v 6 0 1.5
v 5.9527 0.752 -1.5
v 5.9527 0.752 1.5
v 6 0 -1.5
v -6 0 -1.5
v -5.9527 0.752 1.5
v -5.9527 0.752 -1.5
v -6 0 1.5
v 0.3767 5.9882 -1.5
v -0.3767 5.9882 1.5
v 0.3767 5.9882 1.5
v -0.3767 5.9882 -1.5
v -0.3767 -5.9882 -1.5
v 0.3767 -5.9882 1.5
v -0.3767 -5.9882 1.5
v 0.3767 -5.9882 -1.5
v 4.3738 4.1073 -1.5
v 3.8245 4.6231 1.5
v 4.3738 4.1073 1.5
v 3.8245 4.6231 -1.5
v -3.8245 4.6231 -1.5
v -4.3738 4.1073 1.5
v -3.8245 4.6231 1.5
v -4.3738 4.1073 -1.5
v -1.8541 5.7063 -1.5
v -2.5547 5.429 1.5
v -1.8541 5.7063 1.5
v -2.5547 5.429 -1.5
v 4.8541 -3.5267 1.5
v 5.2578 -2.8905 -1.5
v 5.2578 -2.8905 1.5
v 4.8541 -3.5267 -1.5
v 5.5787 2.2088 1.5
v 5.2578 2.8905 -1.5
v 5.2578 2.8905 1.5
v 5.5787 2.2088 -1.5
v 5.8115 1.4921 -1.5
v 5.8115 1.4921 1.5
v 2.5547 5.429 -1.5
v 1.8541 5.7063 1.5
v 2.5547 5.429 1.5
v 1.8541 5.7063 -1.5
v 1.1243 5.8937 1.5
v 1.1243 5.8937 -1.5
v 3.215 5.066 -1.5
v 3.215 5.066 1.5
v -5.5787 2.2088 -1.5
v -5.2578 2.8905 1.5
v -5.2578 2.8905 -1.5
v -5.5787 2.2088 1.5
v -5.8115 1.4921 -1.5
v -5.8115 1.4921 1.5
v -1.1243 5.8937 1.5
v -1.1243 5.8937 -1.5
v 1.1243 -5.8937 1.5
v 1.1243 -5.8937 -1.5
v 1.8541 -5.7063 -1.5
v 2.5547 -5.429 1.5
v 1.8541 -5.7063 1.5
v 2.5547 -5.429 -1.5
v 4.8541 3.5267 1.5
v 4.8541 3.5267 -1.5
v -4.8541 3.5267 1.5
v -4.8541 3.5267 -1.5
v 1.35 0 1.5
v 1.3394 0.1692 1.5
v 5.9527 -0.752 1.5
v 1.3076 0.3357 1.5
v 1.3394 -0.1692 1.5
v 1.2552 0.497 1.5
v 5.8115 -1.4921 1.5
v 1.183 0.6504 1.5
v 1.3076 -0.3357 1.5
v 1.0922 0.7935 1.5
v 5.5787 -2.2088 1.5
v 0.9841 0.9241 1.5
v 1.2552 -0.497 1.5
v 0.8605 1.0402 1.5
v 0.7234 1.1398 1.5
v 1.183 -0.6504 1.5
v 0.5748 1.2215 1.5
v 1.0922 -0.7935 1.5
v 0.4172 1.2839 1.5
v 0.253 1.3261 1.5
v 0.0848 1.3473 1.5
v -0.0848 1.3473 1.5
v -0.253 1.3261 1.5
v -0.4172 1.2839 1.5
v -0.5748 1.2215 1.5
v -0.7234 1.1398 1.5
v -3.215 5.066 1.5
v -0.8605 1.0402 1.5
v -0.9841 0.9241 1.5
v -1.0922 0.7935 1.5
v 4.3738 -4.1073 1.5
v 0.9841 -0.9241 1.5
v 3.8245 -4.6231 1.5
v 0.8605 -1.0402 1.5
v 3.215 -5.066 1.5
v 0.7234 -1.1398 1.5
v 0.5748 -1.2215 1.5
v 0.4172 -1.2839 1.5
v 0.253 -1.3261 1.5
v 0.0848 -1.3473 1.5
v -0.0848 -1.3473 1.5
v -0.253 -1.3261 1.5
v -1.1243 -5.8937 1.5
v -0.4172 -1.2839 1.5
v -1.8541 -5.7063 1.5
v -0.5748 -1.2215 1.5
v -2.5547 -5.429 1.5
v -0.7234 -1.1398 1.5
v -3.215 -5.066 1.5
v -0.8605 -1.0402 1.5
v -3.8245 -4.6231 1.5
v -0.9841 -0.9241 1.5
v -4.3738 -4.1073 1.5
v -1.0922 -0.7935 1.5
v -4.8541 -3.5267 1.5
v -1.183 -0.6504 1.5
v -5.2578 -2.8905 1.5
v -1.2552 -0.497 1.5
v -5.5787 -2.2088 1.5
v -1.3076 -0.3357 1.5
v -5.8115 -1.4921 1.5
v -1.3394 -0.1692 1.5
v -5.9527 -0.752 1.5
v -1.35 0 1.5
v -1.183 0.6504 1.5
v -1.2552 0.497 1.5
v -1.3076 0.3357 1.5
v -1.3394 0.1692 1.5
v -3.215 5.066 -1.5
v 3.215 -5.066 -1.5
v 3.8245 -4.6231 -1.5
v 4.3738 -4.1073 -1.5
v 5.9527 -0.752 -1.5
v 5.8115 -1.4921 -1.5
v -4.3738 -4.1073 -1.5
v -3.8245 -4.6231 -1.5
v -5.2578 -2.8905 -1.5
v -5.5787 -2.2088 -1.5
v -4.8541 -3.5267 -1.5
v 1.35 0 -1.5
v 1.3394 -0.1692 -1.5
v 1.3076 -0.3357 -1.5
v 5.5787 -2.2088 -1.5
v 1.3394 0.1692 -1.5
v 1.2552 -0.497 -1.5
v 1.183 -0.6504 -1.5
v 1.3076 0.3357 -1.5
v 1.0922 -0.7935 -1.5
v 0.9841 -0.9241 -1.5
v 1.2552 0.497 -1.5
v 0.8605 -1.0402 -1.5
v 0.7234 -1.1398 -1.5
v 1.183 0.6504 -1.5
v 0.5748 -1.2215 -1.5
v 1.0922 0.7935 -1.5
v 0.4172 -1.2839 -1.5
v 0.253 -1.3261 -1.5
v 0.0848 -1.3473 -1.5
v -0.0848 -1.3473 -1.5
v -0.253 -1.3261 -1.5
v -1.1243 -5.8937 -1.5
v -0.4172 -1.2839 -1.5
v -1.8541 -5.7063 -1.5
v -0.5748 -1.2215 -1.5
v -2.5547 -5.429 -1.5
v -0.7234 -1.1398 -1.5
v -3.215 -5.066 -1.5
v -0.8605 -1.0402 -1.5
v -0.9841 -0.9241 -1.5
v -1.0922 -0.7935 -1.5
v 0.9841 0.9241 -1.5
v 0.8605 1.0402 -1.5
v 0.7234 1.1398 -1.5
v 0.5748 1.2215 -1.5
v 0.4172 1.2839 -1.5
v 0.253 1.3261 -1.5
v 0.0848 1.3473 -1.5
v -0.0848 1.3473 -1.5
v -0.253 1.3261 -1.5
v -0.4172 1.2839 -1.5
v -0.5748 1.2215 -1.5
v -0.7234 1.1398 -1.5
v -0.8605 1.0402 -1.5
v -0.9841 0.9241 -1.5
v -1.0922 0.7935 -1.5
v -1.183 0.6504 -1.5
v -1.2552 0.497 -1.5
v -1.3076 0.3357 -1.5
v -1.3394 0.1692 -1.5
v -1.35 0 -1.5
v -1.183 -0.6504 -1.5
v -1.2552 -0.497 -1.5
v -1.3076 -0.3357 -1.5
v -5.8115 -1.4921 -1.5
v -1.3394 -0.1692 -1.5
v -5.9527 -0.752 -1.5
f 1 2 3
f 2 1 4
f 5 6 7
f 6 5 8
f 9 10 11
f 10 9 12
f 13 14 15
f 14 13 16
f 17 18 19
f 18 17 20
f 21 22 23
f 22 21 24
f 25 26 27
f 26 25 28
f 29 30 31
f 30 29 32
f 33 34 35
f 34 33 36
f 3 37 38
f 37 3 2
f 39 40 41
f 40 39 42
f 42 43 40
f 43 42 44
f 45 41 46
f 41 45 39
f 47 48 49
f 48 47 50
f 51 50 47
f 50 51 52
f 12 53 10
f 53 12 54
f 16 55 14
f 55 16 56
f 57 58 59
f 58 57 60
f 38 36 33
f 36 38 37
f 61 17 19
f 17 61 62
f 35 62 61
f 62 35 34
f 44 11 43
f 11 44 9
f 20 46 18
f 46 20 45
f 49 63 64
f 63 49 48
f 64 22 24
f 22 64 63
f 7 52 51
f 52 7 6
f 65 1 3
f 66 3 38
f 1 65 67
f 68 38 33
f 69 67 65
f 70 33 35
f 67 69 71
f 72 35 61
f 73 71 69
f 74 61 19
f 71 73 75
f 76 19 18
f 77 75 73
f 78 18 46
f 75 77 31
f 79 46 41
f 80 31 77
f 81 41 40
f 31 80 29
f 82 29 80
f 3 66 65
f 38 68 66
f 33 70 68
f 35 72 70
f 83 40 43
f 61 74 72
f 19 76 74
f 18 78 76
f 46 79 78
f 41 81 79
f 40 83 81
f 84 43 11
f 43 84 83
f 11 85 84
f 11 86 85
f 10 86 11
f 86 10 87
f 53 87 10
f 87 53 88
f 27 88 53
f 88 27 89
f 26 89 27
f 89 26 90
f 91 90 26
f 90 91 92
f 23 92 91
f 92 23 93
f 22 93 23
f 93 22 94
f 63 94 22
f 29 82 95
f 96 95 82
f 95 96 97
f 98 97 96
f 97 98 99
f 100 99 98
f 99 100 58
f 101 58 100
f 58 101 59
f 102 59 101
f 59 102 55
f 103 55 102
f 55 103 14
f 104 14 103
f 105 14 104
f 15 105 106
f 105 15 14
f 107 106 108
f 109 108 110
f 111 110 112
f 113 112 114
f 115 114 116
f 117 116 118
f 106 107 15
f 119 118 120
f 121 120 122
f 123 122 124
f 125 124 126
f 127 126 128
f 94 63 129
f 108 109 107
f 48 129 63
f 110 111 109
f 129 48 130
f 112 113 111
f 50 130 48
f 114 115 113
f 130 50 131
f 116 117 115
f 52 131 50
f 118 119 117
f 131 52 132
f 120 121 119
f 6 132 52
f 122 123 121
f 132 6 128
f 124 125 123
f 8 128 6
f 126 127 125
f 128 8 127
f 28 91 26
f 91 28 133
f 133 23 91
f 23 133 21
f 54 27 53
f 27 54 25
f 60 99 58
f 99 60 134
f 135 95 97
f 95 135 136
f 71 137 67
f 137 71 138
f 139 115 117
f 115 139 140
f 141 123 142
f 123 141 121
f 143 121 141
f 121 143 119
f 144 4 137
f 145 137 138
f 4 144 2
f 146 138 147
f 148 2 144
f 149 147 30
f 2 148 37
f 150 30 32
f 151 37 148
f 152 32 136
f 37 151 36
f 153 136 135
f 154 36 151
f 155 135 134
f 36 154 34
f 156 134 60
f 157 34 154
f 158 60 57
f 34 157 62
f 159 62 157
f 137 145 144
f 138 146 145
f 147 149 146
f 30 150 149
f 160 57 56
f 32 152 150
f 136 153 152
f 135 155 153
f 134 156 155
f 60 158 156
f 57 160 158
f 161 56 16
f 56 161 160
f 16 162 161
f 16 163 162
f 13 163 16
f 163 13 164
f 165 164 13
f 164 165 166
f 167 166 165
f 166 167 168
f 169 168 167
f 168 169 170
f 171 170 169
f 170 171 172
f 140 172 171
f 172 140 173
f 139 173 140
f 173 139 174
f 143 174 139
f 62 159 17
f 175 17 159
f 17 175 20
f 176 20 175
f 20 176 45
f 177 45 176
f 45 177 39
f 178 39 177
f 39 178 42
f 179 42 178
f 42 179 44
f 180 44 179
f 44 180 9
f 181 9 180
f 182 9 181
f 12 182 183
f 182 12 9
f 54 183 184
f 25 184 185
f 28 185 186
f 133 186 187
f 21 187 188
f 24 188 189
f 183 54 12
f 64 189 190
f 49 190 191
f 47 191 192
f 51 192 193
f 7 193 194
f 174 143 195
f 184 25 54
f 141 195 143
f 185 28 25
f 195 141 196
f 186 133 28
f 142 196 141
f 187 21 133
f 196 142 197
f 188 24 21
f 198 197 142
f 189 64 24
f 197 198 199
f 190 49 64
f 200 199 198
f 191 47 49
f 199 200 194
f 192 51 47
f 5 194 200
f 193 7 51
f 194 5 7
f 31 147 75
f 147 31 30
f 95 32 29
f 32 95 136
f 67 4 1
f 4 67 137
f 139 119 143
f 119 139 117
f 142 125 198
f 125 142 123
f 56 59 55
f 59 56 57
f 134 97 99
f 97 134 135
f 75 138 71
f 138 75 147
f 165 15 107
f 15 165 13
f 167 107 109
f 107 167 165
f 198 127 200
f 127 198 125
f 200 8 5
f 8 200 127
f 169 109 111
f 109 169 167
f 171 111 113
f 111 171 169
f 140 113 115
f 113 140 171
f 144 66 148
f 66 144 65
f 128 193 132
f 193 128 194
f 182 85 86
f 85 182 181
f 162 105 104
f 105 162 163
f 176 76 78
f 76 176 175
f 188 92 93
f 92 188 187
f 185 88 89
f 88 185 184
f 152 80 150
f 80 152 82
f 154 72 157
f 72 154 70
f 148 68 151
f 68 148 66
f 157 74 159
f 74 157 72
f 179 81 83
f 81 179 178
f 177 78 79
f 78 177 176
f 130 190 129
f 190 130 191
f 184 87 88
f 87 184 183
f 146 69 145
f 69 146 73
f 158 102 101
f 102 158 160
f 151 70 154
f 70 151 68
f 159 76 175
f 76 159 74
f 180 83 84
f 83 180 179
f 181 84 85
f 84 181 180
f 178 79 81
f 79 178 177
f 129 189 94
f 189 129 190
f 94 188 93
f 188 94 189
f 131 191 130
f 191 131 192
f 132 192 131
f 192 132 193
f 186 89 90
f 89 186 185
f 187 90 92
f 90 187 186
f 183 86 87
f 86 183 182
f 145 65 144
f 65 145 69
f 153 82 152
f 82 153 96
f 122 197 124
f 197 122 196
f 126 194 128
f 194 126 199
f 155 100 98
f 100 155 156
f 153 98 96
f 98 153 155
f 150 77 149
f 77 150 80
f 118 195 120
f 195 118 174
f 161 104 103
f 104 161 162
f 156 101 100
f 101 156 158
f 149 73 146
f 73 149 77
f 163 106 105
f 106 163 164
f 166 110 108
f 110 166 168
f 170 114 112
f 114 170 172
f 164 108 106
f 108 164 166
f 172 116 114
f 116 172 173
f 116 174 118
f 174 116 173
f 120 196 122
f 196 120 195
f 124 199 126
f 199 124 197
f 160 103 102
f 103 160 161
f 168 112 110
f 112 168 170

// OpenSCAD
$fn = 50;


difference() {
	union() {
		translate(v = [0, 0, -1.5000000000]) {
			cylinder(h = 3, r = 6.0000000000);
		}
	}
	union() {
		translate(v = [0, 0, -100.0000000000]) {
			cylinder(h = 200, r = 1.3500000000);
		}
	}
}
